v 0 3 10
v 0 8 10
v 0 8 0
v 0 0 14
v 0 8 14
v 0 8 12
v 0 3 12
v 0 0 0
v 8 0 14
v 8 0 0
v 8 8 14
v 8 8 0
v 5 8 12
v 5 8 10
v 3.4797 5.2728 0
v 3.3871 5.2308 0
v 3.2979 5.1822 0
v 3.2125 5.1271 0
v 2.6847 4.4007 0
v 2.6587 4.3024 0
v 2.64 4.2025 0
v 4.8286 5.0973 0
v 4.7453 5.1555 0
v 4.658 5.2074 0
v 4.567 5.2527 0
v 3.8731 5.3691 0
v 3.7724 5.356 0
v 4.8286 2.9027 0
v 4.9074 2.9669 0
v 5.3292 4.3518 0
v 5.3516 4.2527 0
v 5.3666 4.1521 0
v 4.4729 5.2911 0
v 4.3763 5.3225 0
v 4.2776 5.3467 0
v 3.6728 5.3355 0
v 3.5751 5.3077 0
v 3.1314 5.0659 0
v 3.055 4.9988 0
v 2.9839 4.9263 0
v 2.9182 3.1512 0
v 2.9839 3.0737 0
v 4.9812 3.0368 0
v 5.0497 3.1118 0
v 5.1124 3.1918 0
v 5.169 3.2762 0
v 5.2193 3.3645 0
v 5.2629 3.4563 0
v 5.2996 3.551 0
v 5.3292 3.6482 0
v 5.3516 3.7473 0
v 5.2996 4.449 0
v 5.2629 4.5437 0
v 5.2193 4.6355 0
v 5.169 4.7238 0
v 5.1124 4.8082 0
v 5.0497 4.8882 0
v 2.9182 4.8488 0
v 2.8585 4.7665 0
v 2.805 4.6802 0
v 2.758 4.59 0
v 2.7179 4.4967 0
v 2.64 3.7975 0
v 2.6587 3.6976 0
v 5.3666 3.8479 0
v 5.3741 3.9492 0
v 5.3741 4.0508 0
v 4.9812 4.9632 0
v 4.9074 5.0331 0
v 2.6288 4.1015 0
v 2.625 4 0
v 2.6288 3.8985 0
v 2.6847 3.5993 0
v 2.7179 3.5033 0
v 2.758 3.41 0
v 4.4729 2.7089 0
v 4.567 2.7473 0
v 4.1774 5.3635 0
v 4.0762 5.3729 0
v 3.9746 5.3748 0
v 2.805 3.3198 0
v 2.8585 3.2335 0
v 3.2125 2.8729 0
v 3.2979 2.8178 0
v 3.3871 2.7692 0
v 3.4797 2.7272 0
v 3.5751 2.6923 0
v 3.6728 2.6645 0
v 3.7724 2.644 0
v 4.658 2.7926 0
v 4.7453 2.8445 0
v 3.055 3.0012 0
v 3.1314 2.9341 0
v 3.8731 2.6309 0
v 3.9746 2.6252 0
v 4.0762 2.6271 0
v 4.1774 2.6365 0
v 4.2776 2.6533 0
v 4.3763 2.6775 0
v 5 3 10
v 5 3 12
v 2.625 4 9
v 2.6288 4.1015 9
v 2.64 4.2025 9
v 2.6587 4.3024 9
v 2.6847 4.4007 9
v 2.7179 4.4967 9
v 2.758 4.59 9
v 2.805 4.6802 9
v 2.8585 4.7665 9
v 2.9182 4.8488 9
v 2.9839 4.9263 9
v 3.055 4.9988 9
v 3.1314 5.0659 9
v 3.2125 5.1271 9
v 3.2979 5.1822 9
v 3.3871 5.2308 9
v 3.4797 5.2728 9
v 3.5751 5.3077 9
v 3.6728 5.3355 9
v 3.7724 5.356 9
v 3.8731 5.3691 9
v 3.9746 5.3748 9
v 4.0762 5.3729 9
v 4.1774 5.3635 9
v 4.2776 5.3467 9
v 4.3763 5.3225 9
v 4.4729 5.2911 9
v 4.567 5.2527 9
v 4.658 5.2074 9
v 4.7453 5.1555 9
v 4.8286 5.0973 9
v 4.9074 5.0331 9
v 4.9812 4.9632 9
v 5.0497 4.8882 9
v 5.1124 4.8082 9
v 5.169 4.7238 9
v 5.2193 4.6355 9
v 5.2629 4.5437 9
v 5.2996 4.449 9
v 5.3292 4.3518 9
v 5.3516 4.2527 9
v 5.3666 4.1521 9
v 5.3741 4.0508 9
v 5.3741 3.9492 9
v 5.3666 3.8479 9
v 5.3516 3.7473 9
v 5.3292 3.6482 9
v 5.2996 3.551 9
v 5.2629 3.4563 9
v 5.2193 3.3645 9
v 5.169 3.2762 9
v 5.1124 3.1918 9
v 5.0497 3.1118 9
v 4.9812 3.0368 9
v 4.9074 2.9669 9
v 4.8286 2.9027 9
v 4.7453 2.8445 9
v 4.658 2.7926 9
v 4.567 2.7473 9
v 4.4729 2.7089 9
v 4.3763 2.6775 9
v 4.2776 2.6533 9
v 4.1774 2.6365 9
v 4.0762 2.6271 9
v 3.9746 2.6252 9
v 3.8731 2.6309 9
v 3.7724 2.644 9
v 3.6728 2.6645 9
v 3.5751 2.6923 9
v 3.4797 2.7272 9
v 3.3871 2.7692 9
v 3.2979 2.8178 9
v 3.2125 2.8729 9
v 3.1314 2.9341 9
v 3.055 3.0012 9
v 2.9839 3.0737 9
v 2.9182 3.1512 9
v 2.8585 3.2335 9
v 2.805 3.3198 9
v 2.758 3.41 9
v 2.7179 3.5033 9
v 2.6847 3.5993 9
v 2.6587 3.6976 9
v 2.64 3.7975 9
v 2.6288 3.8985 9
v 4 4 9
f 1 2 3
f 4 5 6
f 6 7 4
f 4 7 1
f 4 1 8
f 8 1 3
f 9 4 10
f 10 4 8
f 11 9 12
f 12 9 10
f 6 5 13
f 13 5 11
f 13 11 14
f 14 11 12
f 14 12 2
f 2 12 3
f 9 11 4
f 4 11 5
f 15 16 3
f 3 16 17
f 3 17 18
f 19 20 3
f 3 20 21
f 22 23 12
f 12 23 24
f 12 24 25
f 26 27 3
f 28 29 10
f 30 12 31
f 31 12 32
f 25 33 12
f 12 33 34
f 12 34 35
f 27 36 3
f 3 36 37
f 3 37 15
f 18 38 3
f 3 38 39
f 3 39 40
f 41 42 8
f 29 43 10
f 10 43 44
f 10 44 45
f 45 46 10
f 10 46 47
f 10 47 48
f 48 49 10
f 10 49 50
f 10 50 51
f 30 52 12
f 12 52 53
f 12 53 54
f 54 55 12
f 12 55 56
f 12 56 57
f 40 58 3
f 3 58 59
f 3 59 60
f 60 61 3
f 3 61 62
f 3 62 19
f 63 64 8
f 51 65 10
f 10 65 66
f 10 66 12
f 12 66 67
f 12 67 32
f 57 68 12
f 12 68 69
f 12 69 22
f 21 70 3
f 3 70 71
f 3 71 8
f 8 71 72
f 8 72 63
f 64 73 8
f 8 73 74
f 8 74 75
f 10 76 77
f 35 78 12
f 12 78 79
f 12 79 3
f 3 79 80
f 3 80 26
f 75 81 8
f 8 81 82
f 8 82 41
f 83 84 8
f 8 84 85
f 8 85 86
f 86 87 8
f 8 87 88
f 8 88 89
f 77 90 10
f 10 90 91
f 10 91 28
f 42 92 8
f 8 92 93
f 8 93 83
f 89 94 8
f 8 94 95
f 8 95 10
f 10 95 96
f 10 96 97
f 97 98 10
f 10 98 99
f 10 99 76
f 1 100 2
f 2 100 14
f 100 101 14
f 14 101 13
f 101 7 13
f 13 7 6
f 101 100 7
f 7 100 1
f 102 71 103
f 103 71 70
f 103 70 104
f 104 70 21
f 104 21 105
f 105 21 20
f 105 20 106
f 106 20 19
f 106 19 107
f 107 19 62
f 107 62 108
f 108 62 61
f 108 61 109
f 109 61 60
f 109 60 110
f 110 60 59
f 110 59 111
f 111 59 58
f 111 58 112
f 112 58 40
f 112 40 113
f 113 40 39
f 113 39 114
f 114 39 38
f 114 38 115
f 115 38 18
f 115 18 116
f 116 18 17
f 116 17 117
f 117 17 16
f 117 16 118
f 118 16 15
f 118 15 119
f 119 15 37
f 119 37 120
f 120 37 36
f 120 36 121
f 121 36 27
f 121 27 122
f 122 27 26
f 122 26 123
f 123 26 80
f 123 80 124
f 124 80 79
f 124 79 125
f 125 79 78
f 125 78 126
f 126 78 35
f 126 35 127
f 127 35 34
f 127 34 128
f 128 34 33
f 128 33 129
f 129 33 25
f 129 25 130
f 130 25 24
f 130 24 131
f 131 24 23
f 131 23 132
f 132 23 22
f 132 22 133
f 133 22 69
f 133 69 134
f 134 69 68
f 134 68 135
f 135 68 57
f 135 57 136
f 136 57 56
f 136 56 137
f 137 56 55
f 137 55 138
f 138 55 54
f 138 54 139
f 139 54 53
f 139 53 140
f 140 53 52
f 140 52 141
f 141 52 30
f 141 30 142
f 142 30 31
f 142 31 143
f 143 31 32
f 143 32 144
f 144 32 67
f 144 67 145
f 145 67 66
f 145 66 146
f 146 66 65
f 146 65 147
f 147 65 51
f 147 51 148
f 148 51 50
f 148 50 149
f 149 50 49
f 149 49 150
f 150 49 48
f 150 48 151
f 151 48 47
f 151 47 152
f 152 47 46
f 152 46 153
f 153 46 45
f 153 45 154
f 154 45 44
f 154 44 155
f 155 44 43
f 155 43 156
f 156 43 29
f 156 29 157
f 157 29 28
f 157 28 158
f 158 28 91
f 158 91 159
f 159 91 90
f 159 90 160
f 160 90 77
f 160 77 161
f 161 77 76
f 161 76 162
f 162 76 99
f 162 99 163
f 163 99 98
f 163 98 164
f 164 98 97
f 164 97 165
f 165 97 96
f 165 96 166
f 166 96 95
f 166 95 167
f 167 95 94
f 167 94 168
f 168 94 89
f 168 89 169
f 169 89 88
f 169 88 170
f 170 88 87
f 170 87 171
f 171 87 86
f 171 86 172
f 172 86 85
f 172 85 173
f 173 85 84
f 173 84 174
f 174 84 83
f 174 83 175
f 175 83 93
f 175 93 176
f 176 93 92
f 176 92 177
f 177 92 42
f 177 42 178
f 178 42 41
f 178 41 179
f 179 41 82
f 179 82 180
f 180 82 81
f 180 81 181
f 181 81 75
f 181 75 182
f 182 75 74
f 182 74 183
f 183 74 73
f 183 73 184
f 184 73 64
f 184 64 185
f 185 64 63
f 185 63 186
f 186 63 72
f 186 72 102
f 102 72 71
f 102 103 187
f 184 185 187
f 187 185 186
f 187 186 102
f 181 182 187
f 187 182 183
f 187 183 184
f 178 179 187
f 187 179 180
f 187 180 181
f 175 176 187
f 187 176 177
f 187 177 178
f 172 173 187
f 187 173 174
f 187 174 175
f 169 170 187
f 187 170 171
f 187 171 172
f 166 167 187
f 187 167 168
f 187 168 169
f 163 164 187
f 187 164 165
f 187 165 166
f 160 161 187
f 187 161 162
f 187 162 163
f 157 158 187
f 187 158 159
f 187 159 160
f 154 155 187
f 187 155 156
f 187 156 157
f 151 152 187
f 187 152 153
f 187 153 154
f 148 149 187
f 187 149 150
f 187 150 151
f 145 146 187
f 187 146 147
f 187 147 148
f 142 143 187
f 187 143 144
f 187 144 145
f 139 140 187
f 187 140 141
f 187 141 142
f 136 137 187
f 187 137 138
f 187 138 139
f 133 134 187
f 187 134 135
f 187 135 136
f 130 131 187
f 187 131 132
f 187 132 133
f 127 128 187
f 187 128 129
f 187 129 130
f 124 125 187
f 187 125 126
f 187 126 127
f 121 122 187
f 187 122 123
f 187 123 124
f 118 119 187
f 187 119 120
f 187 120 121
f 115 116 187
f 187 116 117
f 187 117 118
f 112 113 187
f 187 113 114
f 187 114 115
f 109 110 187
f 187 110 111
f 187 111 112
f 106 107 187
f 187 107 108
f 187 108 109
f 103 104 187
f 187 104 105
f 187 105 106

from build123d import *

# Parameters (mm, degrees)
SZKIC1_W                    = 8
SZKIC1_H                    = 8
DODANIE_WYCI_GNI_CIE1_DEPTH = 14
SZKIC2_W                    = 5
SZKIC2_H                    = 2
WYTNIJ_WYCI_GNI_CIE1_DEPTH  = 5
SZKIC3_R                    = 1.375
WYTNIJ_WYCI_GNI_CIE2_DEPTH  = 9


with BuildPart() as part:
    # Szkic1 → Dodanie-wyciągnięcie1 (new body)
    with BuildSketch(Plane.XY):
        with Locations((4, 4)):
            Rectangle(SZKIC1_W, SZKIC1_H)
    extrude(amount=DODANIE_WYCI_GNI_CIE1_DEPTH)

    # Szkic2 → Wytnij-wyciągnięcie1 (cut)
    with BuildSketch(Plane(origin=(0, 8, 0), x_dir=(1, 0, 0), z_dir=(0, 1, 0))):
        with Locations((2.5, -11)):
            Rectangle(SZKIC2_W, SZKIC2_H)
    extrude(amount=-WYTNIJ_WYCI_GNI_CIE1_DEPTH, mode=Mode.SUBTRACT)

    # Szkic3 → Wytnij-wyciągnięcie2 (cut)
    with BuildSketch(Plane(origin=(0, 0, 0), x_dir=(-1, 0, 0), z_dir=(0, 0, -1))):
        with Locations((-4, 4)):
            Circle(SZKIC3_R)
    extrude(amount=-WYTNIJ_WYCI_GNI_CIE2_DEPTH, mode=Mode.SUBTRACT)


solid = part.part
